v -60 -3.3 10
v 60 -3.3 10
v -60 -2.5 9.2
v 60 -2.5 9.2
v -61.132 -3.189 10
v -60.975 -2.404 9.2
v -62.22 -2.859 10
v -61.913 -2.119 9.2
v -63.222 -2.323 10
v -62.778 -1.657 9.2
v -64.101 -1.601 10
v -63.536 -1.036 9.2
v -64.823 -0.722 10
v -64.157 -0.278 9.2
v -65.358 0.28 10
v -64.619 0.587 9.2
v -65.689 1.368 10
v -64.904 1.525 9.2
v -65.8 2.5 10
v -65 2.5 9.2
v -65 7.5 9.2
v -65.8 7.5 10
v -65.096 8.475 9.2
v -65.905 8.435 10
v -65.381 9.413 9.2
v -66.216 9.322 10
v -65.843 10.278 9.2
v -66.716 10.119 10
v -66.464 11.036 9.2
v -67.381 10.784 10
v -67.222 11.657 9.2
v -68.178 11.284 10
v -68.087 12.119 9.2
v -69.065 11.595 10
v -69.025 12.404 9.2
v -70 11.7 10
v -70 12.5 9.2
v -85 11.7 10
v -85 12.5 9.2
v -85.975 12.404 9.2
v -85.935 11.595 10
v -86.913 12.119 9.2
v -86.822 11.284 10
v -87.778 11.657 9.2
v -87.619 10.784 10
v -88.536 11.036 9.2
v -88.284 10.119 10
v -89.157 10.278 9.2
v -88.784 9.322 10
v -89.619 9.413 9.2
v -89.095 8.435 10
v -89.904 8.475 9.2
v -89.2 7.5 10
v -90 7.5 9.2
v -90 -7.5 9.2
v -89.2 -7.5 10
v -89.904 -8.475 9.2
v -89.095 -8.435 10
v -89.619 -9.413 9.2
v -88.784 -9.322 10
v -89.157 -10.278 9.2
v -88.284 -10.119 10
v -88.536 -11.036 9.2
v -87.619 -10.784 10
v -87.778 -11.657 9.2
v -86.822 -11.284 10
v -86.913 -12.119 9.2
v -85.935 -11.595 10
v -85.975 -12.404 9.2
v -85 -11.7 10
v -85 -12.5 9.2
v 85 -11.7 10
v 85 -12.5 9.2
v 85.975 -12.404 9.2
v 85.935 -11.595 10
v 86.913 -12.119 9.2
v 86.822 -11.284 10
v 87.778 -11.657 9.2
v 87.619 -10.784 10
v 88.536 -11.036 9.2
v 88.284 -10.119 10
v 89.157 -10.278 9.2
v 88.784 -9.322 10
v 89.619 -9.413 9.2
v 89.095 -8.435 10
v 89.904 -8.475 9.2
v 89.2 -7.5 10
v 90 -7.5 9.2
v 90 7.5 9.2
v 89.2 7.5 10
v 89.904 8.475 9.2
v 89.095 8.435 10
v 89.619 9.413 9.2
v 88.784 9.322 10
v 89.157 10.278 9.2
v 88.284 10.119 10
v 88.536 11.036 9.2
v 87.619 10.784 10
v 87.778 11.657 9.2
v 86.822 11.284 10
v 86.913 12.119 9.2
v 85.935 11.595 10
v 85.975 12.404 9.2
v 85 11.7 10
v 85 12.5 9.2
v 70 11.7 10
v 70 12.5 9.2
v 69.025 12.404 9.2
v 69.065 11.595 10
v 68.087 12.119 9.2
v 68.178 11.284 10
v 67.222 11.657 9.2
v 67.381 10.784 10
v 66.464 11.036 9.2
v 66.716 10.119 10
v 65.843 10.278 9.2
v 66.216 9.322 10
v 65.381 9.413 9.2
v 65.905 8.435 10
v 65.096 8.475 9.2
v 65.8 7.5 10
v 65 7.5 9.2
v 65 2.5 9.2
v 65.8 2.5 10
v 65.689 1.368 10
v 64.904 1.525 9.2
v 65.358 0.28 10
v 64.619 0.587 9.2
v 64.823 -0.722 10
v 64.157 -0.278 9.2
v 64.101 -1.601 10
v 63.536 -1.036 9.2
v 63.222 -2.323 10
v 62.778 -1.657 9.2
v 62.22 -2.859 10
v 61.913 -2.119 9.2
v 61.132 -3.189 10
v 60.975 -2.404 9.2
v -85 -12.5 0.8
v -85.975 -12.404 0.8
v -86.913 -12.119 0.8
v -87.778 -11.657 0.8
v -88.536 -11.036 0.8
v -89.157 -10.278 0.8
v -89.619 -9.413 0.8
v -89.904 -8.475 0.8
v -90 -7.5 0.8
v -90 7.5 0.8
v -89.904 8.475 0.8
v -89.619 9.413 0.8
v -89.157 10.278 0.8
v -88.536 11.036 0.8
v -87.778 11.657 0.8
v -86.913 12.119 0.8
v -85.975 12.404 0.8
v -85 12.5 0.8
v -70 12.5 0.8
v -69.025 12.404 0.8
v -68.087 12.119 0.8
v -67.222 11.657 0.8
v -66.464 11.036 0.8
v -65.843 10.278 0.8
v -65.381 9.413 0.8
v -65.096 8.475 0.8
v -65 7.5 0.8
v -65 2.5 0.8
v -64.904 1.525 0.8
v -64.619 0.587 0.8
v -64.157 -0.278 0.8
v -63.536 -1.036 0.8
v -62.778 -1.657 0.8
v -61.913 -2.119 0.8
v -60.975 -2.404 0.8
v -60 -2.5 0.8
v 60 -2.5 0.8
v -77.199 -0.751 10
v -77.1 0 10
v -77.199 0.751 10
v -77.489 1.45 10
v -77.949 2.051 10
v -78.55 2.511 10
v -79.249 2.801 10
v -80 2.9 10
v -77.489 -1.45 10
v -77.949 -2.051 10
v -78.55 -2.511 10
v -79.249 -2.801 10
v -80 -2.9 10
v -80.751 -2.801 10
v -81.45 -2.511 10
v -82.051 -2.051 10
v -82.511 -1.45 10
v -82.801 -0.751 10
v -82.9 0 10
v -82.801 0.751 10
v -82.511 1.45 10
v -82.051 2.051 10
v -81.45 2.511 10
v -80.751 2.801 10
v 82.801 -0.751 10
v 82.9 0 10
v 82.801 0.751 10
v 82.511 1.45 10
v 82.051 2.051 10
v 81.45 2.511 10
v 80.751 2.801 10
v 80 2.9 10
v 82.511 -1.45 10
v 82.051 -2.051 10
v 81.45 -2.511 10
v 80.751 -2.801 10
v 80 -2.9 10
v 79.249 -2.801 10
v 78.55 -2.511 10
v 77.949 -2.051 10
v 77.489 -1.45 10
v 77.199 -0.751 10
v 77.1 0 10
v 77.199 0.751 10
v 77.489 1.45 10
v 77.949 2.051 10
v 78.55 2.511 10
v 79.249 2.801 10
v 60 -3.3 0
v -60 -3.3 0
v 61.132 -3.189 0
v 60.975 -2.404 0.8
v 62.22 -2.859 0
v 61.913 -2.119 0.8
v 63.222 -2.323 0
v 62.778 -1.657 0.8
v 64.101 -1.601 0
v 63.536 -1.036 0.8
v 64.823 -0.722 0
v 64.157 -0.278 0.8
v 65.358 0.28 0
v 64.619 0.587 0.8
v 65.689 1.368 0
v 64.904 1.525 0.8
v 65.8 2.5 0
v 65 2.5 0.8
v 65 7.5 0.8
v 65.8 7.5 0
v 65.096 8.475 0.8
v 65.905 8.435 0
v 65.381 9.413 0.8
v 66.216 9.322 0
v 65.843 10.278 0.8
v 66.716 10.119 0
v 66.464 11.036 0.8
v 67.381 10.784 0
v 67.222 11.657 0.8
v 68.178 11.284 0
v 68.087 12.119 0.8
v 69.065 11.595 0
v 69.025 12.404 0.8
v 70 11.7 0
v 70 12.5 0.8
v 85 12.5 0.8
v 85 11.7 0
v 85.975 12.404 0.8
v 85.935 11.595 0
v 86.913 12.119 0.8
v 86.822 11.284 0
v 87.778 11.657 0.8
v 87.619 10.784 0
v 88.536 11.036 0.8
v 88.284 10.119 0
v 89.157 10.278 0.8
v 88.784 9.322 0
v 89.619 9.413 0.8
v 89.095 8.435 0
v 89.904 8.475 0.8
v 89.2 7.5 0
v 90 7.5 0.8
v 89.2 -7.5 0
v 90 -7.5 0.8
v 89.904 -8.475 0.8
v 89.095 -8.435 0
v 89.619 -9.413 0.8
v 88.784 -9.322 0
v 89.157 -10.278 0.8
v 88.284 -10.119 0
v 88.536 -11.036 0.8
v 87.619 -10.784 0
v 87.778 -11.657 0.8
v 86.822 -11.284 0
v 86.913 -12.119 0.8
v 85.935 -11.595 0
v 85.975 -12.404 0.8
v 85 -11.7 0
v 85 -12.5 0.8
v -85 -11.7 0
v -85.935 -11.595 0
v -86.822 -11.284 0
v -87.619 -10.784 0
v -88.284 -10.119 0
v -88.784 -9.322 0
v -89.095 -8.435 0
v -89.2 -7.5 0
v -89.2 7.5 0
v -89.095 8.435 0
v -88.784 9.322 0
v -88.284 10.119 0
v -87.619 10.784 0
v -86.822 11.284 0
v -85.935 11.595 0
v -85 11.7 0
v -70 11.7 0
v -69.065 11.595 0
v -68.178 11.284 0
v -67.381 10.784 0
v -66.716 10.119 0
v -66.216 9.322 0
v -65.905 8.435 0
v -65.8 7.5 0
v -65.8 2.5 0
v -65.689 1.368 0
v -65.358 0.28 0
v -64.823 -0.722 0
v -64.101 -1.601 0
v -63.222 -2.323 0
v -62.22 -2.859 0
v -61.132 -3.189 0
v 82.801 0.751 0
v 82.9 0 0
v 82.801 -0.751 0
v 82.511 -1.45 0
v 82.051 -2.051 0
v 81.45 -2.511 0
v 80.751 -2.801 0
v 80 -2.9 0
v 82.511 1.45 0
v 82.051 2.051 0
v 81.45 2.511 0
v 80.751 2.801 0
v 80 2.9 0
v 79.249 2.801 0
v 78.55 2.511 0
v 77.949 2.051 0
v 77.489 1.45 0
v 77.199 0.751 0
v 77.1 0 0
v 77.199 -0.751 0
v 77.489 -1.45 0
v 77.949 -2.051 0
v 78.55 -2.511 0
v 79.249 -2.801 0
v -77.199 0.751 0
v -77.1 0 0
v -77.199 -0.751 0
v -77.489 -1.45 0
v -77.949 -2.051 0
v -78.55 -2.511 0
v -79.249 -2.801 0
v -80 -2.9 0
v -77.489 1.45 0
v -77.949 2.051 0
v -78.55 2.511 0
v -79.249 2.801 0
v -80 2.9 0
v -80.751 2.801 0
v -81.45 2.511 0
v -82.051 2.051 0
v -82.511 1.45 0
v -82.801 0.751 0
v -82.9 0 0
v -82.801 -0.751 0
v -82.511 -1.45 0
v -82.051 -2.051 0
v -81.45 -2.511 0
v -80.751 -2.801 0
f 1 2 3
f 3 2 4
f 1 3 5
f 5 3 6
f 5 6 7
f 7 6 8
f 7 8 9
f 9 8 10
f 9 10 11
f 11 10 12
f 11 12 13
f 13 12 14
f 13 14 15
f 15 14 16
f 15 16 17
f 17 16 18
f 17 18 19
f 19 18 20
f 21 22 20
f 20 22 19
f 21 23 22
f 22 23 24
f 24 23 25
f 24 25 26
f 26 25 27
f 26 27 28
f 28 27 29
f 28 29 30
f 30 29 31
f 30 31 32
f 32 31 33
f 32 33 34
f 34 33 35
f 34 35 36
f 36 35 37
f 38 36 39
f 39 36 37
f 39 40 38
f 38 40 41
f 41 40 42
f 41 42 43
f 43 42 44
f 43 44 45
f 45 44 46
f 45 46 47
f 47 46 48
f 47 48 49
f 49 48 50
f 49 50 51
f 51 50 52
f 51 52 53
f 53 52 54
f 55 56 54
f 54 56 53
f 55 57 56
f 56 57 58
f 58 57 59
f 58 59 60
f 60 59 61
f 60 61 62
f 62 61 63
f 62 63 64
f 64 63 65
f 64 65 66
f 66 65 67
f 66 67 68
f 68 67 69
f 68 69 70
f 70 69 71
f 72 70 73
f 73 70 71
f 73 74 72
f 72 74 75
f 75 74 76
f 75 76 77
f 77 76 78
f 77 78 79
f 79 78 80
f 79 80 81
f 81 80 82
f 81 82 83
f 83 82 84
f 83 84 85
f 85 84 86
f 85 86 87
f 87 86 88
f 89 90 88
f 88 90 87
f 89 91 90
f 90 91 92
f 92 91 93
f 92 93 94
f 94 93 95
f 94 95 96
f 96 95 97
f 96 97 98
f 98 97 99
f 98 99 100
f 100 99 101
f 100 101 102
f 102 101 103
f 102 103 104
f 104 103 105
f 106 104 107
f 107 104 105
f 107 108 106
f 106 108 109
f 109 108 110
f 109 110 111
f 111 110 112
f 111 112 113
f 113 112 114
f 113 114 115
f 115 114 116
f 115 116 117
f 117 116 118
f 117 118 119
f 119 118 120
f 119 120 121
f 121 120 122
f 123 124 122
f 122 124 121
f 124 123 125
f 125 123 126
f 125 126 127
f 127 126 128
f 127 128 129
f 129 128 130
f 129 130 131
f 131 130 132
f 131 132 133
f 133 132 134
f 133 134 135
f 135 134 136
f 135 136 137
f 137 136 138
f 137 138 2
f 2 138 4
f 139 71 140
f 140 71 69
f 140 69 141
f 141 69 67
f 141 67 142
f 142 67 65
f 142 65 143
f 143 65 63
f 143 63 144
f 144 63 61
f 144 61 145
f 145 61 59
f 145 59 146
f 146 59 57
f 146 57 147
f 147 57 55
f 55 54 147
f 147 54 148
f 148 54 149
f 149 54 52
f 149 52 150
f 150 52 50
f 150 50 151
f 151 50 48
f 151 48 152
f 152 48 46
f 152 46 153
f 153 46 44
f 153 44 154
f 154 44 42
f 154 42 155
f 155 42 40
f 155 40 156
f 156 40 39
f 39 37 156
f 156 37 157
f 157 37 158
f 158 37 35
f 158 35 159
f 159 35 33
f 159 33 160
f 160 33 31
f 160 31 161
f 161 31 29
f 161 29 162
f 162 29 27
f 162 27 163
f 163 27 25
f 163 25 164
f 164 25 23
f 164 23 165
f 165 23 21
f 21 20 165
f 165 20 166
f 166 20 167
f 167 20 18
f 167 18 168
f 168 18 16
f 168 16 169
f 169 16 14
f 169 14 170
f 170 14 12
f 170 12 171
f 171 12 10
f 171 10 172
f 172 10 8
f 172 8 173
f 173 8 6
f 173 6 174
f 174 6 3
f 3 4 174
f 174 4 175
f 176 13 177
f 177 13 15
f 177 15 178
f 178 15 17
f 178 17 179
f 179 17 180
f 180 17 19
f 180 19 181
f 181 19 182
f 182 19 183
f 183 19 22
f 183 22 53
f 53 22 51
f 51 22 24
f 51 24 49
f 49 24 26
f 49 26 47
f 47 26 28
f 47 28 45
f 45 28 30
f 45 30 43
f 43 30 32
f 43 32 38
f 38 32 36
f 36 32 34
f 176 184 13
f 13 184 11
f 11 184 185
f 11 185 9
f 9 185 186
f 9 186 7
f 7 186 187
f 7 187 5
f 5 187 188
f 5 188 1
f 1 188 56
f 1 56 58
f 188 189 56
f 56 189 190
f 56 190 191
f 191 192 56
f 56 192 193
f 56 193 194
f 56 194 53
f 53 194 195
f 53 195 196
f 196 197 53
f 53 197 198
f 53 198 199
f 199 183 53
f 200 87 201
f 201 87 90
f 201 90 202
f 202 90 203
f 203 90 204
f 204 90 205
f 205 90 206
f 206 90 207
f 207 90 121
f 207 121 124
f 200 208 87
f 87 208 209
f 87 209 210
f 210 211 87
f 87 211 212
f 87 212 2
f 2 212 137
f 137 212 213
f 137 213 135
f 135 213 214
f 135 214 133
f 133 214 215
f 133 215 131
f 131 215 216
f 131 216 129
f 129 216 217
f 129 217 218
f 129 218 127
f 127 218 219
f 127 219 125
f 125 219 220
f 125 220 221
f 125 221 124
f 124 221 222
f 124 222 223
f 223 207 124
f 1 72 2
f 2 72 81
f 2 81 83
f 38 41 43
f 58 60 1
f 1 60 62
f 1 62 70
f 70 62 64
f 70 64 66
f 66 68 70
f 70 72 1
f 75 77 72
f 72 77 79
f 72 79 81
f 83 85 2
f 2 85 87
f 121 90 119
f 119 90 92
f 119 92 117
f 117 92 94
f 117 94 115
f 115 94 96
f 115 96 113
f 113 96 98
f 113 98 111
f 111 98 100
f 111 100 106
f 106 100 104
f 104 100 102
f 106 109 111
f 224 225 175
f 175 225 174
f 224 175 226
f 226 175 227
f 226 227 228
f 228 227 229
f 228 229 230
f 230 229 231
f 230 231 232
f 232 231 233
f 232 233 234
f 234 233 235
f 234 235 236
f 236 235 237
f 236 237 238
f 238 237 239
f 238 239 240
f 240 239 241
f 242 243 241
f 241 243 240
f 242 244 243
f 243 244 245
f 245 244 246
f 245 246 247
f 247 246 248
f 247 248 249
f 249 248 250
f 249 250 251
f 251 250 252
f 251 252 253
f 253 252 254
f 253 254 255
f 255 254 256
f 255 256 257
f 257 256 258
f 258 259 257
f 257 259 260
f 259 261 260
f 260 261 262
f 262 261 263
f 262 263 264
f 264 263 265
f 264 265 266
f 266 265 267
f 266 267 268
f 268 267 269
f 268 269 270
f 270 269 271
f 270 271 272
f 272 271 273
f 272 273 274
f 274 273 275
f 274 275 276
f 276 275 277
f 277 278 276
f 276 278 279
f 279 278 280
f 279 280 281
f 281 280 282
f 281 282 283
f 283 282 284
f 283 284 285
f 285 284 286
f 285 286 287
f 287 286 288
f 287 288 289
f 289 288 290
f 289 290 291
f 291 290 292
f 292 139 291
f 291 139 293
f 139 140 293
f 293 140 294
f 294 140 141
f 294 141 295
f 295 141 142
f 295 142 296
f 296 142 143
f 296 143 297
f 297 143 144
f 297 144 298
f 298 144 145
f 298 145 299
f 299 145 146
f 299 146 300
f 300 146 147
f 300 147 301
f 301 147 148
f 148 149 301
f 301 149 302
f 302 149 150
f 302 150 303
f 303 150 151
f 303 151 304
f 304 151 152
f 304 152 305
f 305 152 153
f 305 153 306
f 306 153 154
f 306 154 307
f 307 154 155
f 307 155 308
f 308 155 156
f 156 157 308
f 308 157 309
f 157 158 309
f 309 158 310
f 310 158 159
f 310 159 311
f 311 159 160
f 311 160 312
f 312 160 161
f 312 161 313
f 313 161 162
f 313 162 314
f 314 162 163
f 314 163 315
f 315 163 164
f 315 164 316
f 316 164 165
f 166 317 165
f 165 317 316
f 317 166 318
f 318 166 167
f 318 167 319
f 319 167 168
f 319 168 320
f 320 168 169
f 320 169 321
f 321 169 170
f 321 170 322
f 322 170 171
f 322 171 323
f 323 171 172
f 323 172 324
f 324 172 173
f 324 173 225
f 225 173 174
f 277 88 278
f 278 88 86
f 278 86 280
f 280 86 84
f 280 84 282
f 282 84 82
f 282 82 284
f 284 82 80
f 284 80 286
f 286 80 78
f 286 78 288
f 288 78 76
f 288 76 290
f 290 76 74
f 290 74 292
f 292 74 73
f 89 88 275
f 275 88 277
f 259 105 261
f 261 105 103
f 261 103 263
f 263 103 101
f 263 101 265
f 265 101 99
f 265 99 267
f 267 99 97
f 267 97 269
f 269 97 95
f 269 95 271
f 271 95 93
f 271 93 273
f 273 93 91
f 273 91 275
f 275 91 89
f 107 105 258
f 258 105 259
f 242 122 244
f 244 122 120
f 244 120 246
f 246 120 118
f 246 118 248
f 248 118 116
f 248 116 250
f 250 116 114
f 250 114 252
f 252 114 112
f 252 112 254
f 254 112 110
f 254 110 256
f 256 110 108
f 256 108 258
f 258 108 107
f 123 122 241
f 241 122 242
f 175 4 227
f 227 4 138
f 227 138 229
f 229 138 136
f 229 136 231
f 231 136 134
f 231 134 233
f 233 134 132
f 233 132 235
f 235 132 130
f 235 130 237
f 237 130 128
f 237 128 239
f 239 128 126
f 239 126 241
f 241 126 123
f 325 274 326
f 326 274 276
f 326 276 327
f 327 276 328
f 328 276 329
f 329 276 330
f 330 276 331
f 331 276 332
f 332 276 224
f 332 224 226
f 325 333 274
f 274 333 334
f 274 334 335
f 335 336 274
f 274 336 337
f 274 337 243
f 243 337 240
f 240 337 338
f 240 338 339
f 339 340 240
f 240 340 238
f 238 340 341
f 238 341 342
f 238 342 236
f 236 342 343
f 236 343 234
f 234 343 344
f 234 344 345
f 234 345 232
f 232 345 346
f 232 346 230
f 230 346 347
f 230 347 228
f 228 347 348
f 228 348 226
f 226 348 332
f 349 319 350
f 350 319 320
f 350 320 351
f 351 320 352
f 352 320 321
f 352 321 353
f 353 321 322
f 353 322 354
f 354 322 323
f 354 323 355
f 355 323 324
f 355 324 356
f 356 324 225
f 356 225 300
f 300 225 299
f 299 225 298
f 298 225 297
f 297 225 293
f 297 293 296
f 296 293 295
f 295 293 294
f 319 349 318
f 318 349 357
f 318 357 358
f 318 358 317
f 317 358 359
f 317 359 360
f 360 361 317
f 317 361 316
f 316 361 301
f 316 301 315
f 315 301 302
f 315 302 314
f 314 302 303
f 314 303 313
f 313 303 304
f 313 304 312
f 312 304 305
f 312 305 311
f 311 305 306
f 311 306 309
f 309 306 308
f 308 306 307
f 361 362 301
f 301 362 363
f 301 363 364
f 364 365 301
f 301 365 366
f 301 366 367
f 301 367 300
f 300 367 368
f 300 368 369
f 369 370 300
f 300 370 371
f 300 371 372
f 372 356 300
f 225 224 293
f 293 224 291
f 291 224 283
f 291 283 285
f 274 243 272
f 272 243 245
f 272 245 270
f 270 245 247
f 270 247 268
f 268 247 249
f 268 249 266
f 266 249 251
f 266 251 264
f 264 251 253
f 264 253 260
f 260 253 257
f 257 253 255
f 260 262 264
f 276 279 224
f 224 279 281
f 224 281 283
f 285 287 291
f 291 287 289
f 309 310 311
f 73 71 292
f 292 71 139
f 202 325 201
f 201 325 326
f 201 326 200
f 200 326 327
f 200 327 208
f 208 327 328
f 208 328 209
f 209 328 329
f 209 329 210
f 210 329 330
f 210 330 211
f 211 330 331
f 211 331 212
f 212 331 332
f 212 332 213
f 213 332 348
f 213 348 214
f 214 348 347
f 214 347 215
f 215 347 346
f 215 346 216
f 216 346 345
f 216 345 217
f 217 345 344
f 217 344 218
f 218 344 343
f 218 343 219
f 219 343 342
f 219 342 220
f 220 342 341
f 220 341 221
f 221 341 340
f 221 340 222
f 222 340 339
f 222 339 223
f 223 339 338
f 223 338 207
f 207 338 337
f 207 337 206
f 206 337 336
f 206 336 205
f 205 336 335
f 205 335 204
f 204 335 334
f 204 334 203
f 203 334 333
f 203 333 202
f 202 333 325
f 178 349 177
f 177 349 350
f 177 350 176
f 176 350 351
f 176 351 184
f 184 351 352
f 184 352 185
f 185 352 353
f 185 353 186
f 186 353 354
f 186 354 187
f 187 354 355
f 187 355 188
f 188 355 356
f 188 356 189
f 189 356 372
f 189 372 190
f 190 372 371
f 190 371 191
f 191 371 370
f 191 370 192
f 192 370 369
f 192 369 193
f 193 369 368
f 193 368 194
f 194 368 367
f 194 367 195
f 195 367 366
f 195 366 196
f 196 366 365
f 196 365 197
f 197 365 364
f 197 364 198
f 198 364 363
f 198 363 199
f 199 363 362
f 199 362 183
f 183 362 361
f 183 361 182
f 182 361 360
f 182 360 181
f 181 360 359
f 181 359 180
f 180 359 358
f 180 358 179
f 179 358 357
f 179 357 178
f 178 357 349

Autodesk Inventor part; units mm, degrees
ref_plane "YZ Plane" through (0, 0, 0) normal (1, 0, 0) x (0, 1, 0)
ref_plane "XZ Plane" through (0, 0, 0) normal (0, 1, 0) x (-1, 0, 0)
ref_plane "XY Plane" through (0, 0, 0) normal (0, 0, 1) x (1, 0, 0)
sketch "Sketch1" plane through (0, 0, 0) normal (0, 0, 1) x (1, 0, 0)
  line L0 (-90, -12.5) -> (90, -12.5)
  line L1 (90, -12.5) -> (90, 12.5)
  line L2 (90, 12.5) -> (-90, 12.5)
  line L3 (-90, 12.5) -> (-90, -12.5)
  line L4 (-90, -12.5) -> (90, 12.5) construction
  line L5 (90, -12.5) -> (-90, 12.5) construction
  line L6 (-246.96, 0) -> (246.96, 0) construction
  circle A0 centre (-80, 0) radius 2.9
  line L7 (0, 17.5) -> (0, -17.5) construction
  line L8 (246.96, 0) -> (-246.96, 0) construction
  circle A1 centre (80, 0) radius 2.9
  point P0 (0, 0)
  dimension "d0" = 25
  dimension "d1" = 180
  dimension "d2" = 5.8
  dimension "d3" = 160
extrude "Extrusion1" add sketch "Sketch1" along normal blind 10
sketch "Sketch2" plane through (0, 0, 10) normal (0, 0, 1) x (1, 0, 0)
  line L0 (90, 12.5) -> (-90, 12.5) projected
  line L1 (-65, 12.5) -> (65, 12.5)
  line L2 (65, 12.5) -> (65, -2.5)
  line L3 (65, -2.5) -> (-65, -2.5)
  line L4 (-65, -2.5) -> (-65, 12.5)
  line L5 (-90, 12.5) -> (-90, -12.5) projected
  line L6 (90, -12.5) -> (90, 12.5) projected
  line L7 (-90, -12.5) -> (90, -12.5) projected
  point P0 (0, 0)
  dimension "d6" = 25
  dimension "d7" = 25
  dimension "d8" = 10
extrude "Extrusion2" cut sketch "Sketch2" against normal through all contours L2 L3 L4 L0
fillet "Fillet1" radius 5 8 edges at (-65, -2.5, 5) (-65, 12.5, 5) (-90, 12.5, 5) (-90, -12.5, 5) (90, -12.5, 5) (90, 12.5, 5) (65, 12.5, 5) (65, -2.5, 5)
chamfer "Chamfer1" distance 0.8 angle 45 32 edges at (0, -2.5, 0) (63.5355, -1.0355, 0) (65, 5, 0) (66.4645, 11.0355, 0) (77.5, 12.5, 0) (88.5355, 11.0355, 0) (90, 0, 0) (88.5355, -11.0355, 0) (0, -12.5, 0) (-88.5355, -11.0355, 0) (-90, 0, 0) (-88.5355, 11.0355, 0) (-77.5, 12.5, 0) (-66.4645, 11.0355, 0) (-65, 5, 0) (-63.5355, -1.0355, 0) (0, -2.5, 10) (-63.5355, -1.0355, 10) (-65, 5, 10) (-66.4645, 11.0355, 10) (-77.5, 12.5, 10) (-88.5355, 11.0355, 10) (-90, 0, 10) (-88.5355, -11.0355, 10) (0, -12.5, 10) (88.5355, -11.0355, 10) (90, 0, 10) (88.5355, 11.0355, 10) (77.5, 12.5, 10) (66.4645, 11.0355, 10) (65, 5, 10) (63.5355, -1.0355, 10)
properties part number "DisplayHolder_3DPrint"
